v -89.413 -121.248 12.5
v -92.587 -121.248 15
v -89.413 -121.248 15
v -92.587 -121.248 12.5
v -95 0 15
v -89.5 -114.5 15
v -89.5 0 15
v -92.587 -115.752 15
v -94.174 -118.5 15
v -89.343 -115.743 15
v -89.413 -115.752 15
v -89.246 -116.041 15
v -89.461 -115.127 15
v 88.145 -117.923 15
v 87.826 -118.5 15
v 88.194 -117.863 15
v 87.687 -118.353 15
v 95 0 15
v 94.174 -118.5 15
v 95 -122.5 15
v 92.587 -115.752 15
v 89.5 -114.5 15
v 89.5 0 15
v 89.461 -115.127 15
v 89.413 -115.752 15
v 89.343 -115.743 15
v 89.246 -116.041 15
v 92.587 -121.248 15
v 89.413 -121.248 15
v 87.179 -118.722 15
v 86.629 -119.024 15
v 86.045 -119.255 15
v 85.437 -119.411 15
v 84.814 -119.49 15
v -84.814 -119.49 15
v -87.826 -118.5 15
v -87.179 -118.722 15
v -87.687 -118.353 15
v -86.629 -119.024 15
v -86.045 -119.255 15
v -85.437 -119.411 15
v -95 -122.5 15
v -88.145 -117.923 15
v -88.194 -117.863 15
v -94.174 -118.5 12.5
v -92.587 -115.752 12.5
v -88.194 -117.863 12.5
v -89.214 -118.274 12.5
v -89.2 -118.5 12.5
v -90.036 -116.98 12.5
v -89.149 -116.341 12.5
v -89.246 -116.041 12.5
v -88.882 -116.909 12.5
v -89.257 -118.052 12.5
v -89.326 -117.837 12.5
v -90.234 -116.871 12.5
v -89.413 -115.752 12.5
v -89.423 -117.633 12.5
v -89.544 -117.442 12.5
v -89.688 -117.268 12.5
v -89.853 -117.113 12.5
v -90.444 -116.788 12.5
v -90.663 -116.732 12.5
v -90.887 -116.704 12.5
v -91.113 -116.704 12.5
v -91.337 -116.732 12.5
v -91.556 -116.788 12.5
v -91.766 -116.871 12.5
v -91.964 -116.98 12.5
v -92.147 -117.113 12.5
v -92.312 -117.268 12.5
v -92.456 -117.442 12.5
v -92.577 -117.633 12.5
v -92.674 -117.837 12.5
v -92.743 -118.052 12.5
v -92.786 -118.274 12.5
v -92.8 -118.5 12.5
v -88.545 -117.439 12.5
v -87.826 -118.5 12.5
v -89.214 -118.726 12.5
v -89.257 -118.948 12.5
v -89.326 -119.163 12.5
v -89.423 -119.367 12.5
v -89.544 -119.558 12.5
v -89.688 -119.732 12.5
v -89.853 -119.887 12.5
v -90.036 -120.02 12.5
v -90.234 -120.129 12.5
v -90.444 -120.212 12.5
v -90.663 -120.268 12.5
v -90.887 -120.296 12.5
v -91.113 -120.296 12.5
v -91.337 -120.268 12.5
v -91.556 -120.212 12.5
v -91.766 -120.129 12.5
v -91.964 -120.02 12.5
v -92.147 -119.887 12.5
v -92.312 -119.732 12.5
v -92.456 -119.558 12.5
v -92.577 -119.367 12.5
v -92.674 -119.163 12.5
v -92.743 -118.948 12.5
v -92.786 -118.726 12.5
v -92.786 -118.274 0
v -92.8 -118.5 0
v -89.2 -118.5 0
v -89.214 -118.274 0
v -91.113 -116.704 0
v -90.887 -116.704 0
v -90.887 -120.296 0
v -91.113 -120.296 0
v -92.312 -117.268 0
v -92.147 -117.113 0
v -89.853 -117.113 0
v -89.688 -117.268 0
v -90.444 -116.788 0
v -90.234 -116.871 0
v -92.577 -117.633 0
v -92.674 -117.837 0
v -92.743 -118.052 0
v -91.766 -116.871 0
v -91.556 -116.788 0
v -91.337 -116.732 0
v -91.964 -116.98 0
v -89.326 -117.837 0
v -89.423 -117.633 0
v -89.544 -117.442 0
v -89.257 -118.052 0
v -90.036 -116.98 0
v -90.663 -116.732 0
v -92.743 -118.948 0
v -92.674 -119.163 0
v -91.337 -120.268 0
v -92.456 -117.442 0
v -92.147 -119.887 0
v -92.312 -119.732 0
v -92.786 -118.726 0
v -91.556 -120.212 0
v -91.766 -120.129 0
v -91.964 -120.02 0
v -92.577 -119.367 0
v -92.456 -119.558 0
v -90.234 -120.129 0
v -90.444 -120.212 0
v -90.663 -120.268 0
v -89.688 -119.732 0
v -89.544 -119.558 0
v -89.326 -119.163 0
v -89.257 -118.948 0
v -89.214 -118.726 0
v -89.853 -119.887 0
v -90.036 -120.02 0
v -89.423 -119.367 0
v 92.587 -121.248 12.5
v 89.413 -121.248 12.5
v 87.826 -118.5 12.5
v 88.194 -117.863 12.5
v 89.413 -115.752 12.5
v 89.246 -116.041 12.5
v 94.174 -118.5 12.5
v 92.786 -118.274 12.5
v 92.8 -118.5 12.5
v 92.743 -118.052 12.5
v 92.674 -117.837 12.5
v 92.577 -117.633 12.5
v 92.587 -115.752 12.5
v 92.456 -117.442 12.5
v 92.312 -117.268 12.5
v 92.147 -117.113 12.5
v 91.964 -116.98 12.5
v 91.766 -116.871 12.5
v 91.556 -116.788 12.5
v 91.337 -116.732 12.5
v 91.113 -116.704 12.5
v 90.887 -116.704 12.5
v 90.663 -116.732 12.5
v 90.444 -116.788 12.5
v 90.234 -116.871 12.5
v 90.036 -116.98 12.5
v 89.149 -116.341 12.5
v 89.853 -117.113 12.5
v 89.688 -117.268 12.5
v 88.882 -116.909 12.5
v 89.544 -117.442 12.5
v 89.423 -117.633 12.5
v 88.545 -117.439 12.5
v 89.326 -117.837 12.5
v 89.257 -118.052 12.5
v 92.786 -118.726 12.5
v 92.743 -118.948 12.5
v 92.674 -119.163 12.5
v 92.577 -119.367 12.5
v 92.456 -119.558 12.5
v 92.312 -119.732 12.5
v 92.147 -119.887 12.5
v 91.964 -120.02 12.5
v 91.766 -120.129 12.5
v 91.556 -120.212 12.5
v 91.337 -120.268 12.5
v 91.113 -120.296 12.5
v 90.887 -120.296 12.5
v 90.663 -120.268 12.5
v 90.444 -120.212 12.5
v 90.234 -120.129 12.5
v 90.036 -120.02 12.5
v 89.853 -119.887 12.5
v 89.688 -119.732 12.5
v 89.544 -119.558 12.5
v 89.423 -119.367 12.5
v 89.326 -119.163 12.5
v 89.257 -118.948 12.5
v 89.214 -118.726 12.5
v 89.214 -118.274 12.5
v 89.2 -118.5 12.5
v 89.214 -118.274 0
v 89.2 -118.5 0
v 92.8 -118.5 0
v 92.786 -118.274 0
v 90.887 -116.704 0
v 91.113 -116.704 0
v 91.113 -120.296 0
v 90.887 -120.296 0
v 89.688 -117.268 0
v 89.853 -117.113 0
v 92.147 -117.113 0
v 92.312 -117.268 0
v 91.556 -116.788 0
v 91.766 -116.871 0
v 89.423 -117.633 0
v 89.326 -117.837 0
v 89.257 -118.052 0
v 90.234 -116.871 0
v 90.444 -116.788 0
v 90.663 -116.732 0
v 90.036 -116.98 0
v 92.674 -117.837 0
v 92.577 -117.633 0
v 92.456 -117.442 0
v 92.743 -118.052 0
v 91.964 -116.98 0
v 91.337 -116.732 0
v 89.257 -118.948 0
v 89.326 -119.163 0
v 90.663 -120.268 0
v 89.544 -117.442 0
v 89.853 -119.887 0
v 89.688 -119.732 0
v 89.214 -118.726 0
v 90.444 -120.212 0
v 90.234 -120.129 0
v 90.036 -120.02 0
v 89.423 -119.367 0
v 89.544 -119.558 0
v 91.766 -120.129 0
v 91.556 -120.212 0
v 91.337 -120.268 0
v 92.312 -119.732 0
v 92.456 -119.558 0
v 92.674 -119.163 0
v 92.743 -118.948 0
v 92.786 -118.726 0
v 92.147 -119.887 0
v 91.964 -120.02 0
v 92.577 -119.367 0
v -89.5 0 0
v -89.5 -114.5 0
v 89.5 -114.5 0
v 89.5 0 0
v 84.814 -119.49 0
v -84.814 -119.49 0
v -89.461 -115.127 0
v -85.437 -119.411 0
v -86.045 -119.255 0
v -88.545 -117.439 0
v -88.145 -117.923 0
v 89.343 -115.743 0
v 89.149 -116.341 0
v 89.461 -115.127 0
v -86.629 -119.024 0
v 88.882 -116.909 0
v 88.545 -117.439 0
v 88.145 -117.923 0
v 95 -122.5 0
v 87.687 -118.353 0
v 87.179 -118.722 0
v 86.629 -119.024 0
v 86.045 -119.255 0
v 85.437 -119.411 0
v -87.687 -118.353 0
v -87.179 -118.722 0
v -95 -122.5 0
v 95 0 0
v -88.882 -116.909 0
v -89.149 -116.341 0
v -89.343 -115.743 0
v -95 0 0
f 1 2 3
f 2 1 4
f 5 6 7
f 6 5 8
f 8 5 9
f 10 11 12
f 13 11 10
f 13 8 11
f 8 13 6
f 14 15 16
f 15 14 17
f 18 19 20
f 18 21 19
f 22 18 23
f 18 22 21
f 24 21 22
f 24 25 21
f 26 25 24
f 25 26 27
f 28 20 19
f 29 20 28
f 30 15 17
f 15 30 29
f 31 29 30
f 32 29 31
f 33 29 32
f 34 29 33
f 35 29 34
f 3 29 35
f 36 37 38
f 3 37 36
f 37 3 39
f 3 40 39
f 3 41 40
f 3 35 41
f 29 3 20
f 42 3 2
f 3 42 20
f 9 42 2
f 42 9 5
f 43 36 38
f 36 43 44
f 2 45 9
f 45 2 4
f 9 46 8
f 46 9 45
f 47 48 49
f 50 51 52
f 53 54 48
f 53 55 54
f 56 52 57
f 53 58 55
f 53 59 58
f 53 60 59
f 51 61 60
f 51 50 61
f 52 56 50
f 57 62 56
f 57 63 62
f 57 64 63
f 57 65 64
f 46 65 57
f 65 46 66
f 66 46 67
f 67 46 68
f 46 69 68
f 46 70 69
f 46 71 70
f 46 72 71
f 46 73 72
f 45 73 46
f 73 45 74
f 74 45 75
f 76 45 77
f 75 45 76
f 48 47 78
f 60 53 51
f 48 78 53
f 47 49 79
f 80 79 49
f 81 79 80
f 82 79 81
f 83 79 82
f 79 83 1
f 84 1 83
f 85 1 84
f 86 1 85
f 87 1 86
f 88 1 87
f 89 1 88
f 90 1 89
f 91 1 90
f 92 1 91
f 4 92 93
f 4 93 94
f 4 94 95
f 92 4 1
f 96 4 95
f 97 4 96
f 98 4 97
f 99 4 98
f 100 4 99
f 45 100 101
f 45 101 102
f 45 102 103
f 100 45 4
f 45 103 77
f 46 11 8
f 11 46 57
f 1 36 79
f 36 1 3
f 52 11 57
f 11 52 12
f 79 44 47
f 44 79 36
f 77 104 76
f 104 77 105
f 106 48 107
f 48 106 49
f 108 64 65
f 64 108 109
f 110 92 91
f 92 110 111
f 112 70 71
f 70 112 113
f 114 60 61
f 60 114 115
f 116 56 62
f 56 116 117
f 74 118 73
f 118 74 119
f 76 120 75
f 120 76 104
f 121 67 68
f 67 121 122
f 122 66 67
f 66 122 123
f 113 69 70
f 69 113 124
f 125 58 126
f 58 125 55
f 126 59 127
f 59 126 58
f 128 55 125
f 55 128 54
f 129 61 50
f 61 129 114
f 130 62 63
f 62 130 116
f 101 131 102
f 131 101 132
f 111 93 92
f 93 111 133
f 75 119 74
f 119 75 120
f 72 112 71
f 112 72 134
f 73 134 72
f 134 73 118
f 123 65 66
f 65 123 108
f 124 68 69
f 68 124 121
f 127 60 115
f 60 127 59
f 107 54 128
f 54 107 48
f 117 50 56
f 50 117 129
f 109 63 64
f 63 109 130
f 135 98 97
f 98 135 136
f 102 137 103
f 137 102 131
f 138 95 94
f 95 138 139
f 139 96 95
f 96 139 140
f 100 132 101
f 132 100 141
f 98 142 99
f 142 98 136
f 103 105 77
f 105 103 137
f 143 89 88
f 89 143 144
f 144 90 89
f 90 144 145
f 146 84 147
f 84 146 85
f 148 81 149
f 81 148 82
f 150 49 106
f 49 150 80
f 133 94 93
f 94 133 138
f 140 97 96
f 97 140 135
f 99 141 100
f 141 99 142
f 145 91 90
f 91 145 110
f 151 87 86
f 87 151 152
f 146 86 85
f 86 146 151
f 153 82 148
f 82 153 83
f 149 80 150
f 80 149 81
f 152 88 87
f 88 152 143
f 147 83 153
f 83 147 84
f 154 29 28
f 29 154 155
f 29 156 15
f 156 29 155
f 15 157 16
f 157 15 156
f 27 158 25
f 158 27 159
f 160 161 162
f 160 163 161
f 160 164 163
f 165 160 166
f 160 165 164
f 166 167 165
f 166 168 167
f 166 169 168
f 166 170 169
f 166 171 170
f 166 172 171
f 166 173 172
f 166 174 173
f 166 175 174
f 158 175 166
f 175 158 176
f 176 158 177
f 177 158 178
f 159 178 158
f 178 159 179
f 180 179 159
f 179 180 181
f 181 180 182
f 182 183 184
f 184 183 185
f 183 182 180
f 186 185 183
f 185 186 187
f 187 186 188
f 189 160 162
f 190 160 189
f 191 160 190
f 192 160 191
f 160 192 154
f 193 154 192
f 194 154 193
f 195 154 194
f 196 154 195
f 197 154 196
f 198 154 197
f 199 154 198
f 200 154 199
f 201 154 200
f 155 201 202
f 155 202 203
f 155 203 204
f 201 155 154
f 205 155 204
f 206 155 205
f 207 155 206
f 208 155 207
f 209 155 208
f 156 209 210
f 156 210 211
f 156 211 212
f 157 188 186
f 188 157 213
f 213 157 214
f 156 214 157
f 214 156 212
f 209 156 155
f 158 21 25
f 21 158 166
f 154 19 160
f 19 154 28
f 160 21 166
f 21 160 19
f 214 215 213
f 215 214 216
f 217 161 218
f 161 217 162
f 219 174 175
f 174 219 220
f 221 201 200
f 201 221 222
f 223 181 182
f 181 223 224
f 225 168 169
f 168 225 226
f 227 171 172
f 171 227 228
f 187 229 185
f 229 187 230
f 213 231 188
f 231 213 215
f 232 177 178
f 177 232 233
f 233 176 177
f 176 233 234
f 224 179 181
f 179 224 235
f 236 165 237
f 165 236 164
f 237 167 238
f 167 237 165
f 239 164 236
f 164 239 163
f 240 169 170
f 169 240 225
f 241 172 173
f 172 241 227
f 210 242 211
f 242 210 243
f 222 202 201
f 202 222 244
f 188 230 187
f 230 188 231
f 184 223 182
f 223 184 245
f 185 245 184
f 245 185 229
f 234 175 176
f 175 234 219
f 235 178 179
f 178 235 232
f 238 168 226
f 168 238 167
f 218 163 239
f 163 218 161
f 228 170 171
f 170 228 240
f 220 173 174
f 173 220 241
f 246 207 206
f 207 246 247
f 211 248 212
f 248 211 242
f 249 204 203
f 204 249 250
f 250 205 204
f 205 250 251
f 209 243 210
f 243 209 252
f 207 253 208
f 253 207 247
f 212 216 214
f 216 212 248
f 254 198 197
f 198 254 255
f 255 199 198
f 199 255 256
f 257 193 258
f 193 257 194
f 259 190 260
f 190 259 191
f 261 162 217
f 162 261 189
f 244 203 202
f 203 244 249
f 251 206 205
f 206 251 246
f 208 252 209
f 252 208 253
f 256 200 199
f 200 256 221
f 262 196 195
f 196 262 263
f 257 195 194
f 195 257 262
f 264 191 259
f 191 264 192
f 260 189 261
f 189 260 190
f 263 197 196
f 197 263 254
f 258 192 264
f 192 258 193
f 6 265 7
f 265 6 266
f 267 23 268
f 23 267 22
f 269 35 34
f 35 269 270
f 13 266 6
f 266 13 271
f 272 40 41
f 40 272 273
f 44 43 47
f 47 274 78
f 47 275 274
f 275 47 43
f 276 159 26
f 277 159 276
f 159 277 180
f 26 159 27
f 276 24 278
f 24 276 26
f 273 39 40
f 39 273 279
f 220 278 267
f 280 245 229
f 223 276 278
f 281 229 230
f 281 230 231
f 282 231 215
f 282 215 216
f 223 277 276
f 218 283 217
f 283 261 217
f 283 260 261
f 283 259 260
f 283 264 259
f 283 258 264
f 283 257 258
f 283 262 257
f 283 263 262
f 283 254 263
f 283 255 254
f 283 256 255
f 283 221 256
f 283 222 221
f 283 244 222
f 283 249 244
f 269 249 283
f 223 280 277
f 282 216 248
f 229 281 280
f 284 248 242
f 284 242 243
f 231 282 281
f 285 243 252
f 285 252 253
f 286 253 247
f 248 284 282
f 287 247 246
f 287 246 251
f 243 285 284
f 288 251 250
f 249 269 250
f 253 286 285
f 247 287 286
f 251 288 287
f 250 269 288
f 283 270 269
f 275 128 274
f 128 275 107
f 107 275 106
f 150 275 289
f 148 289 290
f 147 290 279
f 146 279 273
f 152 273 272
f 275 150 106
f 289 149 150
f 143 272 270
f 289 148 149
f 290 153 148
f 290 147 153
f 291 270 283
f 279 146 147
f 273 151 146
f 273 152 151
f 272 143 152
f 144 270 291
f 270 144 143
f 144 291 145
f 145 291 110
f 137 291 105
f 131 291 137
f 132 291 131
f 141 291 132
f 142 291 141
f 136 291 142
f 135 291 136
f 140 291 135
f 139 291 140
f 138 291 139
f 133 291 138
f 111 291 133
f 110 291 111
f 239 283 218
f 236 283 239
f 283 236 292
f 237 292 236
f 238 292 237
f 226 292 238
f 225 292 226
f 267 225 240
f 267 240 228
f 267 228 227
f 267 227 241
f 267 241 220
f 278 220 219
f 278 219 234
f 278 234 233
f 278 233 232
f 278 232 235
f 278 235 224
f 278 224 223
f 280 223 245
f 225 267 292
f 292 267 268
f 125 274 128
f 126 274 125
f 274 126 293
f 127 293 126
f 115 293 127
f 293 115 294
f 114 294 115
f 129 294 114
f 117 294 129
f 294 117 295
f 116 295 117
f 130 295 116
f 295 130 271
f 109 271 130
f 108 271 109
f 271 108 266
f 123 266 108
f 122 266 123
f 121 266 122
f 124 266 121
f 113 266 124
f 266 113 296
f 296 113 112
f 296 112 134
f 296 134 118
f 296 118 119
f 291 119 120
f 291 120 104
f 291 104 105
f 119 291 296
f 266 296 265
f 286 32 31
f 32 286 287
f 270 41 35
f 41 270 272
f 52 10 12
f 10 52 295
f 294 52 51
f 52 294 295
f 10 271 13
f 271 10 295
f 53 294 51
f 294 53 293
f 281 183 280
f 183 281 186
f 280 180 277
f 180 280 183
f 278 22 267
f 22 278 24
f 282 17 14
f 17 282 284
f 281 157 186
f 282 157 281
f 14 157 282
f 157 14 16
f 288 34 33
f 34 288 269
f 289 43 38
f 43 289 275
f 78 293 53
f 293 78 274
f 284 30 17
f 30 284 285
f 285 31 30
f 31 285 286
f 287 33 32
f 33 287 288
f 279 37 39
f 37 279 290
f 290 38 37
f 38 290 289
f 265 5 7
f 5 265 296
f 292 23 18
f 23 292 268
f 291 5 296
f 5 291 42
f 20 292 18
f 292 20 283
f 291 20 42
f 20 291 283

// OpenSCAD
$fn = 50;


difference() {
	union() {
		translate(v = [-95.0000000000, -122.5000000000, 0]) {
			cube(size = [190, 245, 15]);
		}
	}
	union() {
		translate(v = [-91.0000000000, -118.5000000000, -3]) {
			rotate(a = [0, 180, 0]) {
				difference() {
					union() {
						translate(v = [0, 0, -18.0000000000]) {
							rotate(a = [0, 0, 0]) {
								difference() {
									union() {
										#linear_extrude(height = 2.5000000000) {
											polygon(points = [[3.1735000000, 0.0000000000], [1.5867500000, 2.7483316189], [-1.5867500000, 2.7483316189], [-3.1735000000, 0.0000000000], [-1.5867500000, -2.7483316189], [1.5867500000, -2.7483316189]]);
										}
									}
									union();
								}
							}
						}
						translate(v = [0, 0, -18.0000000000]) {
							rotate(a = [0, 0, 0]) {
								difference() {
									union() {
										#linear_extrude(height = 2.5000000000) {
											polygon(points = [[3.1735000000, 0.0000000000], [1.5867500000, 2.7483316189], [-1.5867500000, 2.7483316189], [-3.1735000000, 0.0000000000], [-1.5867500000, -2.7483316189], [1.5867500000, -2.7483316189]]);
										}
									}
									union();
								}
							}
						}
						translate(v = [0, 0, -18.0000000000]) {
							rotate(a = [0, 0, 0]) {
								difference() {
									union() {
										#linear_extrude(height = 2.5000000000) {
											polygon(points = [[3.1735000000, 0.0000000000], [1.5867500000, 2.7483316189], [-1.5867500000, 2.7483316189], [-3.1735000000, 0.0000000000], [-1.5867500000, -2.7483316189], [1.5867500000, -2.7483316189]]);
										}
									}
									union();
								}
							}
						}
						#translate(v = [0, 0, -18.0000000000]) {
							cylinder(h = 18, r = 1.5000000000);
						}
						#translate(v = [0, 0, -18.0000000000]) {
							cylinder(h = 18, r = 1.8000000000);
						}
						#translate(v = [0, 0, -1.7000000000]) {
							cylinder(h = 1.7000000000, r1 = 1.5000000000, r2 = 2.9000000000);
						}
						#translate(v = [0, 0, -18.0000000000]) {
							cylinder(h = 18, r = 1.5000000000);
						}
					}
					union();
				}
			}
		}
		translate(v = [91.0000000000, -118.5000000000, -3]) {
			rotate(a = [0, 180, 0]) {
				difference() {
					union() {
						translate(v = [0, 0, -18.0000000000]) {
							rotate(a = [0, 0, 0]) {
								difference() {
									union() {
										#linear_extrude(height = 2.5000000000) {
											polygon(points = [[3.1735000000, 0.0000000000], [1.5867500000, 2.7483316189], [-1.5867500000, 2.7483316189], [-3.1735000000, 0.0000000000], [-1.5867500000, -2.7483316189], [1.5867500000, -2.7483316189]]);
										}
									}
									union();
								}
							}
						}
						translate(v = [0, 0, -18.0000000000]) {
							rotate(a = [0, 0, 0]) {
								difference() {
									union() {
										#linear_extrude(height = 2.5000000000) {
											polygon(points = [[3.1735000000, 0.0000000000], [1.5867500000, 2.7483316189], [-1.5867500000, 2.7483316189], [-3.1735000000, 0.0000000000], [-1.5867500000, -2.7483316189], [1.5867500000, -2.7483316189]]);
										}
									}
									union();
								}
							}
						}
						translate(v = [0, 0, -18.0000000000]) {
							rotate(a = [0, 0, 0]) {
								difference() {
									union() {
										#linear_extrude(height = 2.5000000000) {
											polygon(points = [[3.1735000000, 0.0000000000], [1.5867500000, 2.7483316189], [-1.5867500000, 2.7483316189], [-3.1735000000, 0.0000000000], [-1.5867500000, -2.7483316189], [1.5867500000, -2.7483316189]]);
										}
									}
									union();
								}
							}
						}
						#translate(v = [0, 0, -18.0000000000]) {
							cylinder(h = 18, r = 1.5000000000);
						}
						#translate(v = [0, 0, -18.0000000000]) {
							cylinder(h = 18, r = 1.8000000000);
						}
						#translate(v = [0, 0, -1.7000000000]) {
							cylinder(h = 1.7000000000, r1 = 1.5000000000, r2 = 2.9000000000);
						}
						#translate(v = [0, 0, -18.0000000000]) {
							cylinder(h = 18, r = 1.5000000000);
						}
					}
					union();
				}
			}
		}
		translate(v = [-91.0000000000, 118.5000000000, -3]) {
			rotate(a = [0, 180, 0]) {
				difference() {
					union() {
						translate(v = [0, 0, -18.0000000000]) {
							rotate(a = [0, 0, 0]) {
								difference() {
									union() {
										#linear_extrude(height = 2.5000000000) {
											polygon(points = [[3.1735000000, 0.0000000000], [1.5867500000, 2.7483316189], [-1.5867500000, 2.7483316189], [-3.1735000000, 0.0000000000], [-1.5867500000, -2.7483316189], [1.5867500000, -2.7483316189]]);
										}
									}
									union();
								}
							}
						}
						translate(v = [0, 0, -18.0000000000]) {
							rotate(a = [0, 0, 0]) {
								difference() {
									union() {
										#linear_extrude(height = 2.5000000000) {
											polygon(points = [[3.1735000000, 0.0000000000], [1.5867500000, 2.7483316189], [-1.5867500000, 2.7483316189], [-3.1735000000, 0.0000000000], [-1.5867500000, -2.7483316189], [1.5867500000, -2.7483316189]]);
										}
									}
									union();
								}
							}
						}
						translate(v = [0, 0, -18.0000000000]) {
							rotate(a = [0, 0, 0]) {
								difference() {
									union() {
										#linear_extrude(height = 2.5000000000) {
											polygon(points = [[3.1735000000, 0.0000000000], [1.5867500000, 2.7483316189], [-1.5867500000, 2.7483316189], [-3.1735000000, 0.0000000000], [-1.5867500000, -2.7483316189], [1.5867500000, -2.7483316189]]);
										}
									}
									union();
								}
							}
						}
						#translate(v = [0, 0, -18.0000000000]) {
							cylinder(h = 18, r = 1.5000000000);
						}
						#translate(v = [0, 0, -18.0000000000]) {
							cylinder(h = 18, r = 1.8000000000);
						}
						#translate(v = [0, 0, -1.7000000000]) {
							cylinder(h = 1.7000000000, r1 = 1.5000000000, r2 = 2.9000000000);
						}
						#translate(v = [0, 0, -18.0000000000]) {
							cylinder(h = 18, r = 1.5000000000);
						}
					}
					union();
				}
			}
		}
		translate(v = [91.0000000000, 118.5000000000, -3]) {
			rotate(a = [0, 180, 0]) {
				difference() {
					union() {
						translate(v = [0, 0, -18.0000000000]) {
							rotate(a = [0, 0, 0]) {
								difference() {
									union() {
										#linear_extrude(height = 2.5000000000) {
											polygon(points = [[3.1735000000, 0.0000000000], [1.5867500000, 2.7483316189], [-1.5867500000, 2.7483316189], [-3.1735000000, 0.0000000000], [-1.5867500000, -2.7483316189], [1.5867500000, -2.7483316189]]);
										}
									}
									union();
								}
							}
						}
						translate(v = [0, 0, -18.0000000000]) {
							rotate(a = [0, 0, 0]) {
								difference() {
									union() {
										#linear_extrude(height = 2.5000000000) {
											polygon(points = [[3.1735000000, 0.0000000000], [1.5867500000, 2.7483316189], [-1.5867500000, 2.7483316189], [-3.1735000000, 0.0000000000], [-1.5867500000, -2.7483316189], [1.5867500000, -2.7483316189]]);
										}
									}
									union();
								}
							}
						}
						translate(v = [0, 0, -18.0000000000]) {
							rotate(a = [0, 0, 0]) {
								difference() {
									union() {
										#linear_extrude(height = 2.5000000000) {
											polygon(points = [[3.1735000000, 0.0000000000], [1.5867500000, 2.7483316189], [-1.5867500000, 2.7483316189], [-3.1735000000, 0.0000000000], [-1.5867500000, -2.7483316189], [1.5867500000, -2.7483316189]]);
										}
									}
									union();
								}
							}
						}
						#translate(v = [0, 0, -18.0000000000]) {
							cylinder(h = 18, r = 1.5000000000);
						}
						#translate(v = [0, 0, -18.0000000000]) {
							cylinder(h = 18, r = 1.8000000000);
						}
						#translate(v = [0, 0, -1.7000000000]) {
							cylinder(h = 1.7000000000, r1 = 1.5000000000, r2 = 2.9000000000);
						}
						#translate(v = [0, 0, -18.0000000000]) {
							cylinder(h = 18, r = 1.5000000000);
						}
					}
					union();
				}
			}
		}
		#hull() {
			translate(v = [-84.5000000000, 114.5000000000, 0]) {
				cylinder(h = 15, r = 5);
			}
			translate(v = [84.5000000000, 114.5000000000, 0]) {
				cylinder(h = 15, r = 5);
			}
			translate(v = [-84.5000000000, -114.5000000000, 0]) {
				cylinder(h = 15, r = 5);
			}
			translate(v = [84.5000000000, -114.5000000000, 0]) {
				cylinder(h = 15, r = 5);
			}
		}
		translate(v = [-250.0000000000, 0, -250.0000000000]) {
			cube(size = [500, 500, 500]);
		}
		translate(v = [-250.0000000000, 0, -250.0000000000]) {
			cube(size = [500, 500, 500]);
		}
		translate(v = [-250.0000000000, 0, -250.0000000000]) {
			cube(size = [500, 500, 500]);
		}
	}
}
